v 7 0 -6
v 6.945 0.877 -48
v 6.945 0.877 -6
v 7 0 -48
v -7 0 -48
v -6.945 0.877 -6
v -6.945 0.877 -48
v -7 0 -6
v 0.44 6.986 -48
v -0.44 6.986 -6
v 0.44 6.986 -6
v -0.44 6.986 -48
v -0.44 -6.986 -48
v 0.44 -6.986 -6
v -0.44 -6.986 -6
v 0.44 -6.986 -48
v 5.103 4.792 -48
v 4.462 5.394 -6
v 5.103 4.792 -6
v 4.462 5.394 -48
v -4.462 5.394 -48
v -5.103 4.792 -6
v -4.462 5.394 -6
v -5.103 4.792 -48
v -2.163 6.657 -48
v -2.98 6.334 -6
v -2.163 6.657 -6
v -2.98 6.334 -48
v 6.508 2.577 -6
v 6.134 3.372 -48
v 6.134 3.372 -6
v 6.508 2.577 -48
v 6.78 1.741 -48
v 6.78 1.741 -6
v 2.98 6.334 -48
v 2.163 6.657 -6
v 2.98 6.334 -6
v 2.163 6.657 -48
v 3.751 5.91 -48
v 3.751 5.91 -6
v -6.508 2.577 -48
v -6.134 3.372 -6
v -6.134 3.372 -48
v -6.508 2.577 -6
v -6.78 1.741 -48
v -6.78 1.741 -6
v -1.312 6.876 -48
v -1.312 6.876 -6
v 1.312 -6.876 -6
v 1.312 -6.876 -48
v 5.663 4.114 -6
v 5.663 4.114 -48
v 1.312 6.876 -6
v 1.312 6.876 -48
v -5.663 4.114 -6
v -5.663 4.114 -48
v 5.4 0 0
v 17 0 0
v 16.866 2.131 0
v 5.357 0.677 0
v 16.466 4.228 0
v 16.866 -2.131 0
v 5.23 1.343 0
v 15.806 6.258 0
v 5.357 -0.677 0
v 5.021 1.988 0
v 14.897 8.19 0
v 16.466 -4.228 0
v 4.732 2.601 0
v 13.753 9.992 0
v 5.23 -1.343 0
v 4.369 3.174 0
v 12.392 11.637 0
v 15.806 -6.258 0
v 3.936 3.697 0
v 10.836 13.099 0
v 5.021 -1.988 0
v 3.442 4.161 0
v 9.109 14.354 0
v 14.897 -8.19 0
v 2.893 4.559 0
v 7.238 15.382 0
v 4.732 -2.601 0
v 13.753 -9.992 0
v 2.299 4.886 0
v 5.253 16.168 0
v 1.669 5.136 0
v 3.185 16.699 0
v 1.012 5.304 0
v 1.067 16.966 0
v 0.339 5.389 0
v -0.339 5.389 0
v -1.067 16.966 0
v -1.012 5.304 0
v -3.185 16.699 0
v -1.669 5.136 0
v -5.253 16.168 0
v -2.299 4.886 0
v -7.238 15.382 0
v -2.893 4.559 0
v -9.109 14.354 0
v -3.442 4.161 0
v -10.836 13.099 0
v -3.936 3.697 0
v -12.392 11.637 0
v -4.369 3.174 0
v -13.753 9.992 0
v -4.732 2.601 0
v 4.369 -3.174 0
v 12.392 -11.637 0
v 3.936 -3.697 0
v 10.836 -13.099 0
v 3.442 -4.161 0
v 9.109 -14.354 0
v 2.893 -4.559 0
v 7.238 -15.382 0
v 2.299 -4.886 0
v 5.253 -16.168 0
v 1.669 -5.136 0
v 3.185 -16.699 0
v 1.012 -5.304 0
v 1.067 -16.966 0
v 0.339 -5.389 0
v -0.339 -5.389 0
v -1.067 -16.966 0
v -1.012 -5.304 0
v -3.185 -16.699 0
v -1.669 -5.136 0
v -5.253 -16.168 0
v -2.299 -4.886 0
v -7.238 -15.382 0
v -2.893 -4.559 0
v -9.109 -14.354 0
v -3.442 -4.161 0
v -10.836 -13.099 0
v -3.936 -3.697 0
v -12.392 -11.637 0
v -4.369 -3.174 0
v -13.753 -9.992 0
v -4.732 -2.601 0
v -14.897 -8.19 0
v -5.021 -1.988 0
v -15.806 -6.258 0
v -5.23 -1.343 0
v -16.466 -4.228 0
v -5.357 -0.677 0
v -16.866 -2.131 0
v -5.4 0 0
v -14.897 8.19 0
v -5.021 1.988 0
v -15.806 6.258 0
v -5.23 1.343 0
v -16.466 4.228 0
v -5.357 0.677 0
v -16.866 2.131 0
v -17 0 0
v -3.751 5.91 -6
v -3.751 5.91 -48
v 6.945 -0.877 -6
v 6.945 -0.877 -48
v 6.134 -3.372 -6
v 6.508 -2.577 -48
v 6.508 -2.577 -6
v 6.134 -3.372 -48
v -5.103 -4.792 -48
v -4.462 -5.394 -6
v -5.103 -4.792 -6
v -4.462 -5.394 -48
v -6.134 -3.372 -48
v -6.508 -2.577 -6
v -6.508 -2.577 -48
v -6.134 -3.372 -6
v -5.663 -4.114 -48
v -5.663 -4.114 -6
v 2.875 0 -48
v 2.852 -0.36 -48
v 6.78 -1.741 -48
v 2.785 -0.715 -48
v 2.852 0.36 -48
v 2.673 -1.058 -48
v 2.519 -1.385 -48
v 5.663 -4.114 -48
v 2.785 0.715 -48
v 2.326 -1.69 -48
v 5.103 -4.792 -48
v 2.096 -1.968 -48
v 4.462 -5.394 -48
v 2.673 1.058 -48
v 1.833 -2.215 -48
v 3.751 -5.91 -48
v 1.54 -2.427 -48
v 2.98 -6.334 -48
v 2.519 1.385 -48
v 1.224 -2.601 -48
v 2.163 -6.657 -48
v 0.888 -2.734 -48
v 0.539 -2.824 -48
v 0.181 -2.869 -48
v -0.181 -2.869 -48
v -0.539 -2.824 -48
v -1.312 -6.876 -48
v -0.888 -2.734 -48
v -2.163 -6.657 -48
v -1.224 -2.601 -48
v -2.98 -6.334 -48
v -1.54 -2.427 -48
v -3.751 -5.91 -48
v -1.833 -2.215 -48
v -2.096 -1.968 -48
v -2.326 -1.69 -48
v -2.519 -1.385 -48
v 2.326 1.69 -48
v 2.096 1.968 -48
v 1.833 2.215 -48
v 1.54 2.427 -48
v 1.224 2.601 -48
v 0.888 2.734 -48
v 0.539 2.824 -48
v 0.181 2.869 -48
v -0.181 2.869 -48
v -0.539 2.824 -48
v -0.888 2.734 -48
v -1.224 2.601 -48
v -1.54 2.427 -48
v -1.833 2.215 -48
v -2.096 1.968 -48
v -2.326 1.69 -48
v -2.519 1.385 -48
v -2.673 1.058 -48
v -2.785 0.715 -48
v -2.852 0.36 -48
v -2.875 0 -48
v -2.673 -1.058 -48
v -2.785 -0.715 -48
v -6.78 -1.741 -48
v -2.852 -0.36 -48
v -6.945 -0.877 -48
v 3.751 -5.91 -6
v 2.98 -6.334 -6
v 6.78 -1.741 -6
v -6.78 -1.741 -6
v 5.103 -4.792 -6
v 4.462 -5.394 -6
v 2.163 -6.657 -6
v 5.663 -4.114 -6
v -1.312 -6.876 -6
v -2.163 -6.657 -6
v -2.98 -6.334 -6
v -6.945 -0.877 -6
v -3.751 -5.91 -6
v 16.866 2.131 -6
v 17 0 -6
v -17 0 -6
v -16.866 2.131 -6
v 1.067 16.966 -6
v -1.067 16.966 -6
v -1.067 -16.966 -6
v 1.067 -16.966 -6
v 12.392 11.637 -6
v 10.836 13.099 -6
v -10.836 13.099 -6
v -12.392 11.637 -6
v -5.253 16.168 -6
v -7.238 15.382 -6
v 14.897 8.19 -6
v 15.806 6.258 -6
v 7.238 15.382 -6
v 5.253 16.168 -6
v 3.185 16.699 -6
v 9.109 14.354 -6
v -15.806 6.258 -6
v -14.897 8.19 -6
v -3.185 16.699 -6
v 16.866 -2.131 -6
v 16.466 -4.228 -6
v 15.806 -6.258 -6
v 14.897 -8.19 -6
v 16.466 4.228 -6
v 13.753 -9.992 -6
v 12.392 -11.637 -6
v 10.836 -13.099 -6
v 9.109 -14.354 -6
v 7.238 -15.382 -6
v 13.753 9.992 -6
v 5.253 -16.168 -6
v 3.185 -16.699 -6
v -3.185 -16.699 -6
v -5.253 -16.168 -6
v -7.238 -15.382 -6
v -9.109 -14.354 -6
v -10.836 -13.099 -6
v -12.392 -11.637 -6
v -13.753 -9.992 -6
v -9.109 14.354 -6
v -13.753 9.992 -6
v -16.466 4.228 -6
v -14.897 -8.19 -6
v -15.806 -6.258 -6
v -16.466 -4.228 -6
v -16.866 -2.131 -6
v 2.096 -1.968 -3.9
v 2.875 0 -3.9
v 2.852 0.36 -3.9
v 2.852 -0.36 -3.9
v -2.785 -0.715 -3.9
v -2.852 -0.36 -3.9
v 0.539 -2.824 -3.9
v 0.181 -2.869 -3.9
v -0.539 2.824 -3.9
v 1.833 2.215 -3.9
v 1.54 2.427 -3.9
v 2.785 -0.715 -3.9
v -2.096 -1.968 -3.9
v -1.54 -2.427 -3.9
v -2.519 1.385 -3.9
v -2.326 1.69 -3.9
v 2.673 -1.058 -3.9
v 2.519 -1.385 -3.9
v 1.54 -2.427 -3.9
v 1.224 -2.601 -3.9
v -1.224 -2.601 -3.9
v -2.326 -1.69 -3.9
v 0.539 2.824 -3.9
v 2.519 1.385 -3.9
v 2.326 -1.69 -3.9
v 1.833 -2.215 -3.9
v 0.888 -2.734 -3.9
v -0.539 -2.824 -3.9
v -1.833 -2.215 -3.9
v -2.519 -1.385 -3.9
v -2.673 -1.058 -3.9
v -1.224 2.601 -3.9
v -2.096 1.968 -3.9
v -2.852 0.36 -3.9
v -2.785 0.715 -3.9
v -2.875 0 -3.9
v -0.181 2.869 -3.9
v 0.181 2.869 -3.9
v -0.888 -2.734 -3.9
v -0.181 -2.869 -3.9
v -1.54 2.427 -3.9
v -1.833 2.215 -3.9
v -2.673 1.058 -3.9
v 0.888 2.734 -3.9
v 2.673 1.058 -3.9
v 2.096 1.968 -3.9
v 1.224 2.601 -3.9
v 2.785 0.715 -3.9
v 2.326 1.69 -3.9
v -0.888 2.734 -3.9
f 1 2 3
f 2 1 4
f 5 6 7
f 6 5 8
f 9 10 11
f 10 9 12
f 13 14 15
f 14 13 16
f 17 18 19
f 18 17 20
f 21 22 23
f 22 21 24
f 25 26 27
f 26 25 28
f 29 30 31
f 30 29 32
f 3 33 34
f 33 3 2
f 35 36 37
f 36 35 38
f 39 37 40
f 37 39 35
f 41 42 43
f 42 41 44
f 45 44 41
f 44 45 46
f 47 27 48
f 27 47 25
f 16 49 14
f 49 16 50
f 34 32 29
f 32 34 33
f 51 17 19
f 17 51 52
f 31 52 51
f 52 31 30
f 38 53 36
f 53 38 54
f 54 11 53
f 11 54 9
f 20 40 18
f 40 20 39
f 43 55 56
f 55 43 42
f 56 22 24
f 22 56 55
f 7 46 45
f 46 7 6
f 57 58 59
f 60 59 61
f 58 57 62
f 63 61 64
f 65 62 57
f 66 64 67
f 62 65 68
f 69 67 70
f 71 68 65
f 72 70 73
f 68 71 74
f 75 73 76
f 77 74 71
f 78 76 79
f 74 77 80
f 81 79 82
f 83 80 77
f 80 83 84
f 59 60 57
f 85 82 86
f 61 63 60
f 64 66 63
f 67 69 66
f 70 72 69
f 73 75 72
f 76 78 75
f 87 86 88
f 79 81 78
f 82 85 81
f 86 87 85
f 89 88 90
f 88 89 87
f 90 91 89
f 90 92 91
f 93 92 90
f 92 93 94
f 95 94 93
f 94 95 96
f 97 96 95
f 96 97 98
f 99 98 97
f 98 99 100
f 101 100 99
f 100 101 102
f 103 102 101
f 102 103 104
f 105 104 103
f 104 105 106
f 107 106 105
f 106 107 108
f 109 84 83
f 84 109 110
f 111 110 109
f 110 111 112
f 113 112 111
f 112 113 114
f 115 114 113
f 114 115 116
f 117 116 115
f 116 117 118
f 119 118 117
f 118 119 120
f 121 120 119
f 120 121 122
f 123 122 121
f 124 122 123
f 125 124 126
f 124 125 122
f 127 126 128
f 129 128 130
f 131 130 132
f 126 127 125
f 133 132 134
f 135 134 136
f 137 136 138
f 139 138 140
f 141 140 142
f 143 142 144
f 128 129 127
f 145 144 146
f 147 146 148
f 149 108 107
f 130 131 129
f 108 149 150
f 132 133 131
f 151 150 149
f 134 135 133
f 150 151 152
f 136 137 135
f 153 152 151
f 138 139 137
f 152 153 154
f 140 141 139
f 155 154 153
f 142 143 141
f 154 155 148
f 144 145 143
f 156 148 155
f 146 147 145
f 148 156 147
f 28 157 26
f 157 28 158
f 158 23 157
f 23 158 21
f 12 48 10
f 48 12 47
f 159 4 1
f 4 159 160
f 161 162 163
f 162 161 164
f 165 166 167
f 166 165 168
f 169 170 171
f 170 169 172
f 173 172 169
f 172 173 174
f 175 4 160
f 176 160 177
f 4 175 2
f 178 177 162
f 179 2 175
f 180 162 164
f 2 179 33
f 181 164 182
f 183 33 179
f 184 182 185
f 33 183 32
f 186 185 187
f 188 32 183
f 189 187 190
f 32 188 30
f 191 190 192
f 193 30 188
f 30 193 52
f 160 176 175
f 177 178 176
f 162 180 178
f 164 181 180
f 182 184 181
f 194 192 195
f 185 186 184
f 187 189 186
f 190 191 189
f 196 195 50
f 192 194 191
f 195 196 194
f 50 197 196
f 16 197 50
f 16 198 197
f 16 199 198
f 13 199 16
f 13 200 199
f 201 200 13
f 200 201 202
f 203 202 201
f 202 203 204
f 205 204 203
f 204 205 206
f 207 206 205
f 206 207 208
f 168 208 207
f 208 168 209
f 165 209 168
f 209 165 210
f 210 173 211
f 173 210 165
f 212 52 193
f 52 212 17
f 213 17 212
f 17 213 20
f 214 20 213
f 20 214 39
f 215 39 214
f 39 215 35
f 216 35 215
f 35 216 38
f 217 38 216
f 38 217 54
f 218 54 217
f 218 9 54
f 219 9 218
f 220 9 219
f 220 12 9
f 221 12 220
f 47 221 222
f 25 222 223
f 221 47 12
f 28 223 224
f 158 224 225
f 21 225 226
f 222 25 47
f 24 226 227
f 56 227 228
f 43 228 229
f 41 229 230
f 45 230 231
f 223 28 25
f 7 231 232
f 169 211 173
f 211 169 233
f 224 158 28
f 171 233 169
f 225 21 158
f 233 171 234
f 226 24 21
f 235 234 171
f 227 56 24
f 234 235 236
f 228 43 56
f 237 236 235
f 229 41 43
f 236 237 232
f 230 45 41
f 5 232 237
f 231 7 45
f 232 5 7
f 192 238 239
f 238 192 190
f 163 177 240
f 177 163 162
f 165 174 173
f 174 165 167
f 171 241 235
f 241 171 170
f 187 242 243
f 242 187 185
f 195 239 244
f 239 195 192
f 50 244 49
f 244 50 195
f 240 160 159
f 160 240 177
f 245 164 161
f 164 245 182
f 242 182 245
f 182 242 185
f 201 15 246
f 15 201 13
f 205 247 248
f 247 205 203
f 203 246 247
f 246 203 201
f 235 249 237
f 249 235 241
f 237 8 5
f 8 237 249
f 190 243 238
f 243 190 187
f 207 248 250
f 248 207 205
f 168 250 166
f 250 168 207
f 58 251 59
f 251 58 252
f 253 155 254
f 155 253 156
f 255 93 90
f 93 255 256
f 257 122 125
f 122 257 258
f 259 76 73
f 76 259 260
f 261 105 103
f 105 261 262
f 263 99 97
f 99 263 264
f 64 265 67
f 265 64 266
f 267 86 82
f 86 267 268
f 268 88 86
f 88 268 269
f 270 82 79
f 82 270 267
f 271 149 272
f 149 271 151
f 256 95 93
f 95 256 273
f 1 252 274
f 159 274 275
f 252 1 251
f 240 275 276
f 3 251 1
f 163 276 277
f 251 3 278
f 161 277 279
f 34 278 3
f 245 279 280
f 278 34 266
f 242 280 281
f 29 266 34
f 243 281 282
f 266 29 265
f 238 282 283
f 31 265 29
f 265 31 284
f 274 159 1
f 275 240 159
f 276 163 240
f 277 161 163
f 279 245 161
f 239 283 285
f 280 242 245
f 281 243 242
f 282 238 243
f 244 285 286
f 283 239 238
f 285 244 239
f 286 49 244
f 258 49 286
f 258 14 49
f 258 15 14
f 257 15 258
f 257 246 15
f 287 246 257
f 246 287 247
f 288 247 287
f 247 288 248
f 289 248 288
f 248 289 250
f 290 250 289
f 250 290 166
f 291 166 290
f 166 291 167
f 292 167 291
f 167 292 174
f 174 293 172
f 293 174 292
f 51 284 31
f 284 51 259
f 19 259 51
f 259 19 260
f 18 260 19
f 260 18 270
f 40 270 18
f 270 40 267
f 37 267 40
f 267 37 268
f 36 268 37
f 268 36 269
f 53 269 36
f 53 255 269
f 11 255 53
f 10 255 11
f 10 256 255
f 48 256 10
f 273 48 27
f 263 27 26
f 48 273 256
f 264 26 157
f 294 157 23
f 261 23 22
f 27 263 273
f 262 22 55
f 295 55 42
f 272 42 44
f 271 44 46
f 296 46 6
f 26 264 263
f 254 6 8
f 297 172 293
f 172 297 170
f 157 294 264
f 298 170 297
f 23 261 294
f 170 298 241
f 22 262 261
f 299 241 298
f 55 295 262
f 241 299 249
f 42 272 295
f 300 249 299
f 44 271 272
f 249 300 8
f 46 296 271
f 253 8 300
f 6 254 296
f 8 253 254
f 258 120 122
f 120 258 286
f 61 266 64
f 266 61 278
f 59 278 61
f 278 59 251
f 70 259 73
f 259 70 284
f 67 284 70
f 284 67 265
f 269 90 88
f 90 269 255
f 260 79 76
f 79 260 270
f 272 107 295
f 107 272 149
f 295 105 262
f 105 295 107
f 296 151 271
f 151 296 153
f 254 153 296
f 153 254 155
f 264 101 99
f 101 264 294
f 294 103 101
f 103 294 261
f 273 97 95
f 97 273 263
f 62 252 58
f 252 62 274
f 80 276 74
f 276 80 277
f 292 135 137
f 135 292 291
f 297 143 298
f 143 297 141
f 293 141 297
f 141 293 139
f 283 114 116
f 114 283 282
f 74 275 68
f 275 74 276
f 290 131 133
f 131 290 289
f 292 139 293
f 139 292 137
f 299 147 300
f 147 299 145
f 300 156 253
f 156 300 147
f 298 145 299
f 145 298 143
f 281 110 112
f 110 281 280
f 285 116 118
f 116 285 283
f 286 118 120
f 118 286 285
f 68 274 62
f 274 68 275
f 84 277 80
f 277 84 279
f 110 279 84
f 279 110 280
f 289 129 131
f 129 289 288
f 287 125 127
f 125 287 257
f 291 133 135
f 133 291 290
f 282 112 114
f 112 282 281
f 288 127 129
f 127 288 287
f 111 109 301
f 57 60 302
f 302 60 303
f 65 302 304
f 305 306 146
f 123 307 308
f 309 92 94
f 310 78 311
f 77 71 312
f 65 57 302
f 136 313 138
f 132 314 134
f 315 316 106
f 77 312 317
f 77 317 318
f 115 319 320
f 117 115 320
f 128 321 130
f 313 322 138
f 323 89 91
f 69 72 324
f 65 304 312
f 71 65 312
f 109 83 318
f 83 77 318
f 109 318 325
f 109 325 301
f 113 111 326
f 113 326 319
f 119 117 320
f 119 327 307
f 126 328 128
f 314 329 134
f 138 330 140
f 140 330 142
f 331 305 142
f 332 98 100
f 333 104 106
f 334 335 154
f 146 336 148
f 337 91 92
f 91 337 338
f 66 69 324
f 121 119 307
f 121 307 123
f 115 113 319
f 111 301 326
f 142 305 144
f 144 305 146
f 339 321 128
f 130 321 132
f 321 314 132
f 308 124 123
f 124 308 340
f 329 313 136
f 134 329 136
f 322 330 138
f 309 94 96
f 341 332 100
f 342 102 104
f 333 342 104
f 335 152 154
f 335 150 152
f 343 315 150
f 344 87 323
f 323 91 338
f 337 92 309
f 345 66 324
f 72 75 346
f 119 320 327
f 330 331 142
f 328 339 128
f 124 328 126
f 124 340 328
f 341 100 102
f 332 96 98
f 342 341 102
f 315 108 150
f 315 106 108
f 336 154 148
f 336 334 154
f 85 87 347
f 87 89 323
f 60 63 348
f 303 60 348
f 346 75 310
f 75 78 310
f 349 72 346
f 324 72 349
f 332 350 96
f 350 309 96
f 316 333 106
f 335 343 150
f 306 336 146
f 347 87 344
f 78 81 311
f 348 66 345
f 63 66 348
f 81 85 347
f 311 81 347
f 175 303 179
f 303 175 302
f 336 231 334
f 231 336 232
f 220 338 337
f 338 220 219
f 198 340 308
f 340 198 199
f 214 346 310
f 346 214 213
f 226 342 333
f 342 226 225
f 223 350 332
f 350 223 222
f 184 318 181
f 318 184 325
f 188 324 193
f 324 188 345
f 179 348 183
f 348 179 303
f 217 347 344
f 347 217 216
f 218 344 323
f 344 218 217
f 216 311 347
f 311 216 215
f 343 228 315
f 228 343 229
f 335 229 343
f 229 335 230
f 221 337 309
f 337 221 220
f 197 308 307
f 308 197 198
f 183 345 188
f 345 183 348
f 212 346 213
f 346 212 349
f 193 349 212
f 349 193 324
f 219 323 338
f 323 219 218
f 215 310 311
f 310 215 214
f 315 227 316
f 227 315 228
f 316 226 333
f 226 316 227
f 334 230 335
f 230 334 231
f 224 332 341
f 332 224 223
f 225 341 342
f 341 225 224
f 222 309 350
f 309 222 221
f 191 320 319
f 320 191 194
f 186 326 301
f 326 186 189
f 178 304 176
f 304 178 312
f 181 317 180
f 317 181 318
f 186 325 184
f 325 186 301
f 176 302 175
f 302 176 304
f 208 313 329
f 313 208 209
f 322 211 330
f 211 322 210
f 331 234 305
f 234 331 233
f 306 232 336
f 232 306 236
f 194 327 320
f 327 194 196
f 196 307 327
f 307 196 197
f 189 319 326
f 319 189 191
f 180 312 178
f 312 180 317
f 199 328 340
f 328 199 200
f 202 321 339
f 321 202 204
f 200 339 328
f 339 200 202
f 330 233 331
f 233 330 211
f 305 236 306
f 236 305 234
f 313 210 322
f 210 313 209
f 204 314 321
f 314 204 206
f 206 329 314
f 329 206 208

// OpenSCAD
$fn = 50;


difference() {
	union() {
		translate(v = [0, 0, -48.0000000000]) {
			cylinder(h = 48, r = 7.0000000000);
		}
		translate(v = [0, 0, -6.0000000000]) {
			cylinder(h = 6, r = 17.0000000000);
		}
	}
	union() {
		translate(v = [0, 0, 0]) {
			rotate(a = [0, 0, 0]) {
				difference() {
					union() {
						#translate(v = [0, 0, -48.0000000000]) {
							cylinder(h = 48, r = 2.6000000000);
						}
						#translate(v = [0, 0, -3.9000000000]) {
							cylinder(h = 3.9000000000, r = 7.0000000000, r1 = 2.8750000000, r2 = 5.4000000000);
						}
						#translate(v = [0, 0, -48.0000000000]) {
							cylinder(h = 48, r = 2.8750000000);
						}
						#translate(v = [0, 0, -48.0000000000]) {
							cylinder(h = 48, r = 2.6000000000);
						}
					}
					union();
				}
			}
		}
	}
}
